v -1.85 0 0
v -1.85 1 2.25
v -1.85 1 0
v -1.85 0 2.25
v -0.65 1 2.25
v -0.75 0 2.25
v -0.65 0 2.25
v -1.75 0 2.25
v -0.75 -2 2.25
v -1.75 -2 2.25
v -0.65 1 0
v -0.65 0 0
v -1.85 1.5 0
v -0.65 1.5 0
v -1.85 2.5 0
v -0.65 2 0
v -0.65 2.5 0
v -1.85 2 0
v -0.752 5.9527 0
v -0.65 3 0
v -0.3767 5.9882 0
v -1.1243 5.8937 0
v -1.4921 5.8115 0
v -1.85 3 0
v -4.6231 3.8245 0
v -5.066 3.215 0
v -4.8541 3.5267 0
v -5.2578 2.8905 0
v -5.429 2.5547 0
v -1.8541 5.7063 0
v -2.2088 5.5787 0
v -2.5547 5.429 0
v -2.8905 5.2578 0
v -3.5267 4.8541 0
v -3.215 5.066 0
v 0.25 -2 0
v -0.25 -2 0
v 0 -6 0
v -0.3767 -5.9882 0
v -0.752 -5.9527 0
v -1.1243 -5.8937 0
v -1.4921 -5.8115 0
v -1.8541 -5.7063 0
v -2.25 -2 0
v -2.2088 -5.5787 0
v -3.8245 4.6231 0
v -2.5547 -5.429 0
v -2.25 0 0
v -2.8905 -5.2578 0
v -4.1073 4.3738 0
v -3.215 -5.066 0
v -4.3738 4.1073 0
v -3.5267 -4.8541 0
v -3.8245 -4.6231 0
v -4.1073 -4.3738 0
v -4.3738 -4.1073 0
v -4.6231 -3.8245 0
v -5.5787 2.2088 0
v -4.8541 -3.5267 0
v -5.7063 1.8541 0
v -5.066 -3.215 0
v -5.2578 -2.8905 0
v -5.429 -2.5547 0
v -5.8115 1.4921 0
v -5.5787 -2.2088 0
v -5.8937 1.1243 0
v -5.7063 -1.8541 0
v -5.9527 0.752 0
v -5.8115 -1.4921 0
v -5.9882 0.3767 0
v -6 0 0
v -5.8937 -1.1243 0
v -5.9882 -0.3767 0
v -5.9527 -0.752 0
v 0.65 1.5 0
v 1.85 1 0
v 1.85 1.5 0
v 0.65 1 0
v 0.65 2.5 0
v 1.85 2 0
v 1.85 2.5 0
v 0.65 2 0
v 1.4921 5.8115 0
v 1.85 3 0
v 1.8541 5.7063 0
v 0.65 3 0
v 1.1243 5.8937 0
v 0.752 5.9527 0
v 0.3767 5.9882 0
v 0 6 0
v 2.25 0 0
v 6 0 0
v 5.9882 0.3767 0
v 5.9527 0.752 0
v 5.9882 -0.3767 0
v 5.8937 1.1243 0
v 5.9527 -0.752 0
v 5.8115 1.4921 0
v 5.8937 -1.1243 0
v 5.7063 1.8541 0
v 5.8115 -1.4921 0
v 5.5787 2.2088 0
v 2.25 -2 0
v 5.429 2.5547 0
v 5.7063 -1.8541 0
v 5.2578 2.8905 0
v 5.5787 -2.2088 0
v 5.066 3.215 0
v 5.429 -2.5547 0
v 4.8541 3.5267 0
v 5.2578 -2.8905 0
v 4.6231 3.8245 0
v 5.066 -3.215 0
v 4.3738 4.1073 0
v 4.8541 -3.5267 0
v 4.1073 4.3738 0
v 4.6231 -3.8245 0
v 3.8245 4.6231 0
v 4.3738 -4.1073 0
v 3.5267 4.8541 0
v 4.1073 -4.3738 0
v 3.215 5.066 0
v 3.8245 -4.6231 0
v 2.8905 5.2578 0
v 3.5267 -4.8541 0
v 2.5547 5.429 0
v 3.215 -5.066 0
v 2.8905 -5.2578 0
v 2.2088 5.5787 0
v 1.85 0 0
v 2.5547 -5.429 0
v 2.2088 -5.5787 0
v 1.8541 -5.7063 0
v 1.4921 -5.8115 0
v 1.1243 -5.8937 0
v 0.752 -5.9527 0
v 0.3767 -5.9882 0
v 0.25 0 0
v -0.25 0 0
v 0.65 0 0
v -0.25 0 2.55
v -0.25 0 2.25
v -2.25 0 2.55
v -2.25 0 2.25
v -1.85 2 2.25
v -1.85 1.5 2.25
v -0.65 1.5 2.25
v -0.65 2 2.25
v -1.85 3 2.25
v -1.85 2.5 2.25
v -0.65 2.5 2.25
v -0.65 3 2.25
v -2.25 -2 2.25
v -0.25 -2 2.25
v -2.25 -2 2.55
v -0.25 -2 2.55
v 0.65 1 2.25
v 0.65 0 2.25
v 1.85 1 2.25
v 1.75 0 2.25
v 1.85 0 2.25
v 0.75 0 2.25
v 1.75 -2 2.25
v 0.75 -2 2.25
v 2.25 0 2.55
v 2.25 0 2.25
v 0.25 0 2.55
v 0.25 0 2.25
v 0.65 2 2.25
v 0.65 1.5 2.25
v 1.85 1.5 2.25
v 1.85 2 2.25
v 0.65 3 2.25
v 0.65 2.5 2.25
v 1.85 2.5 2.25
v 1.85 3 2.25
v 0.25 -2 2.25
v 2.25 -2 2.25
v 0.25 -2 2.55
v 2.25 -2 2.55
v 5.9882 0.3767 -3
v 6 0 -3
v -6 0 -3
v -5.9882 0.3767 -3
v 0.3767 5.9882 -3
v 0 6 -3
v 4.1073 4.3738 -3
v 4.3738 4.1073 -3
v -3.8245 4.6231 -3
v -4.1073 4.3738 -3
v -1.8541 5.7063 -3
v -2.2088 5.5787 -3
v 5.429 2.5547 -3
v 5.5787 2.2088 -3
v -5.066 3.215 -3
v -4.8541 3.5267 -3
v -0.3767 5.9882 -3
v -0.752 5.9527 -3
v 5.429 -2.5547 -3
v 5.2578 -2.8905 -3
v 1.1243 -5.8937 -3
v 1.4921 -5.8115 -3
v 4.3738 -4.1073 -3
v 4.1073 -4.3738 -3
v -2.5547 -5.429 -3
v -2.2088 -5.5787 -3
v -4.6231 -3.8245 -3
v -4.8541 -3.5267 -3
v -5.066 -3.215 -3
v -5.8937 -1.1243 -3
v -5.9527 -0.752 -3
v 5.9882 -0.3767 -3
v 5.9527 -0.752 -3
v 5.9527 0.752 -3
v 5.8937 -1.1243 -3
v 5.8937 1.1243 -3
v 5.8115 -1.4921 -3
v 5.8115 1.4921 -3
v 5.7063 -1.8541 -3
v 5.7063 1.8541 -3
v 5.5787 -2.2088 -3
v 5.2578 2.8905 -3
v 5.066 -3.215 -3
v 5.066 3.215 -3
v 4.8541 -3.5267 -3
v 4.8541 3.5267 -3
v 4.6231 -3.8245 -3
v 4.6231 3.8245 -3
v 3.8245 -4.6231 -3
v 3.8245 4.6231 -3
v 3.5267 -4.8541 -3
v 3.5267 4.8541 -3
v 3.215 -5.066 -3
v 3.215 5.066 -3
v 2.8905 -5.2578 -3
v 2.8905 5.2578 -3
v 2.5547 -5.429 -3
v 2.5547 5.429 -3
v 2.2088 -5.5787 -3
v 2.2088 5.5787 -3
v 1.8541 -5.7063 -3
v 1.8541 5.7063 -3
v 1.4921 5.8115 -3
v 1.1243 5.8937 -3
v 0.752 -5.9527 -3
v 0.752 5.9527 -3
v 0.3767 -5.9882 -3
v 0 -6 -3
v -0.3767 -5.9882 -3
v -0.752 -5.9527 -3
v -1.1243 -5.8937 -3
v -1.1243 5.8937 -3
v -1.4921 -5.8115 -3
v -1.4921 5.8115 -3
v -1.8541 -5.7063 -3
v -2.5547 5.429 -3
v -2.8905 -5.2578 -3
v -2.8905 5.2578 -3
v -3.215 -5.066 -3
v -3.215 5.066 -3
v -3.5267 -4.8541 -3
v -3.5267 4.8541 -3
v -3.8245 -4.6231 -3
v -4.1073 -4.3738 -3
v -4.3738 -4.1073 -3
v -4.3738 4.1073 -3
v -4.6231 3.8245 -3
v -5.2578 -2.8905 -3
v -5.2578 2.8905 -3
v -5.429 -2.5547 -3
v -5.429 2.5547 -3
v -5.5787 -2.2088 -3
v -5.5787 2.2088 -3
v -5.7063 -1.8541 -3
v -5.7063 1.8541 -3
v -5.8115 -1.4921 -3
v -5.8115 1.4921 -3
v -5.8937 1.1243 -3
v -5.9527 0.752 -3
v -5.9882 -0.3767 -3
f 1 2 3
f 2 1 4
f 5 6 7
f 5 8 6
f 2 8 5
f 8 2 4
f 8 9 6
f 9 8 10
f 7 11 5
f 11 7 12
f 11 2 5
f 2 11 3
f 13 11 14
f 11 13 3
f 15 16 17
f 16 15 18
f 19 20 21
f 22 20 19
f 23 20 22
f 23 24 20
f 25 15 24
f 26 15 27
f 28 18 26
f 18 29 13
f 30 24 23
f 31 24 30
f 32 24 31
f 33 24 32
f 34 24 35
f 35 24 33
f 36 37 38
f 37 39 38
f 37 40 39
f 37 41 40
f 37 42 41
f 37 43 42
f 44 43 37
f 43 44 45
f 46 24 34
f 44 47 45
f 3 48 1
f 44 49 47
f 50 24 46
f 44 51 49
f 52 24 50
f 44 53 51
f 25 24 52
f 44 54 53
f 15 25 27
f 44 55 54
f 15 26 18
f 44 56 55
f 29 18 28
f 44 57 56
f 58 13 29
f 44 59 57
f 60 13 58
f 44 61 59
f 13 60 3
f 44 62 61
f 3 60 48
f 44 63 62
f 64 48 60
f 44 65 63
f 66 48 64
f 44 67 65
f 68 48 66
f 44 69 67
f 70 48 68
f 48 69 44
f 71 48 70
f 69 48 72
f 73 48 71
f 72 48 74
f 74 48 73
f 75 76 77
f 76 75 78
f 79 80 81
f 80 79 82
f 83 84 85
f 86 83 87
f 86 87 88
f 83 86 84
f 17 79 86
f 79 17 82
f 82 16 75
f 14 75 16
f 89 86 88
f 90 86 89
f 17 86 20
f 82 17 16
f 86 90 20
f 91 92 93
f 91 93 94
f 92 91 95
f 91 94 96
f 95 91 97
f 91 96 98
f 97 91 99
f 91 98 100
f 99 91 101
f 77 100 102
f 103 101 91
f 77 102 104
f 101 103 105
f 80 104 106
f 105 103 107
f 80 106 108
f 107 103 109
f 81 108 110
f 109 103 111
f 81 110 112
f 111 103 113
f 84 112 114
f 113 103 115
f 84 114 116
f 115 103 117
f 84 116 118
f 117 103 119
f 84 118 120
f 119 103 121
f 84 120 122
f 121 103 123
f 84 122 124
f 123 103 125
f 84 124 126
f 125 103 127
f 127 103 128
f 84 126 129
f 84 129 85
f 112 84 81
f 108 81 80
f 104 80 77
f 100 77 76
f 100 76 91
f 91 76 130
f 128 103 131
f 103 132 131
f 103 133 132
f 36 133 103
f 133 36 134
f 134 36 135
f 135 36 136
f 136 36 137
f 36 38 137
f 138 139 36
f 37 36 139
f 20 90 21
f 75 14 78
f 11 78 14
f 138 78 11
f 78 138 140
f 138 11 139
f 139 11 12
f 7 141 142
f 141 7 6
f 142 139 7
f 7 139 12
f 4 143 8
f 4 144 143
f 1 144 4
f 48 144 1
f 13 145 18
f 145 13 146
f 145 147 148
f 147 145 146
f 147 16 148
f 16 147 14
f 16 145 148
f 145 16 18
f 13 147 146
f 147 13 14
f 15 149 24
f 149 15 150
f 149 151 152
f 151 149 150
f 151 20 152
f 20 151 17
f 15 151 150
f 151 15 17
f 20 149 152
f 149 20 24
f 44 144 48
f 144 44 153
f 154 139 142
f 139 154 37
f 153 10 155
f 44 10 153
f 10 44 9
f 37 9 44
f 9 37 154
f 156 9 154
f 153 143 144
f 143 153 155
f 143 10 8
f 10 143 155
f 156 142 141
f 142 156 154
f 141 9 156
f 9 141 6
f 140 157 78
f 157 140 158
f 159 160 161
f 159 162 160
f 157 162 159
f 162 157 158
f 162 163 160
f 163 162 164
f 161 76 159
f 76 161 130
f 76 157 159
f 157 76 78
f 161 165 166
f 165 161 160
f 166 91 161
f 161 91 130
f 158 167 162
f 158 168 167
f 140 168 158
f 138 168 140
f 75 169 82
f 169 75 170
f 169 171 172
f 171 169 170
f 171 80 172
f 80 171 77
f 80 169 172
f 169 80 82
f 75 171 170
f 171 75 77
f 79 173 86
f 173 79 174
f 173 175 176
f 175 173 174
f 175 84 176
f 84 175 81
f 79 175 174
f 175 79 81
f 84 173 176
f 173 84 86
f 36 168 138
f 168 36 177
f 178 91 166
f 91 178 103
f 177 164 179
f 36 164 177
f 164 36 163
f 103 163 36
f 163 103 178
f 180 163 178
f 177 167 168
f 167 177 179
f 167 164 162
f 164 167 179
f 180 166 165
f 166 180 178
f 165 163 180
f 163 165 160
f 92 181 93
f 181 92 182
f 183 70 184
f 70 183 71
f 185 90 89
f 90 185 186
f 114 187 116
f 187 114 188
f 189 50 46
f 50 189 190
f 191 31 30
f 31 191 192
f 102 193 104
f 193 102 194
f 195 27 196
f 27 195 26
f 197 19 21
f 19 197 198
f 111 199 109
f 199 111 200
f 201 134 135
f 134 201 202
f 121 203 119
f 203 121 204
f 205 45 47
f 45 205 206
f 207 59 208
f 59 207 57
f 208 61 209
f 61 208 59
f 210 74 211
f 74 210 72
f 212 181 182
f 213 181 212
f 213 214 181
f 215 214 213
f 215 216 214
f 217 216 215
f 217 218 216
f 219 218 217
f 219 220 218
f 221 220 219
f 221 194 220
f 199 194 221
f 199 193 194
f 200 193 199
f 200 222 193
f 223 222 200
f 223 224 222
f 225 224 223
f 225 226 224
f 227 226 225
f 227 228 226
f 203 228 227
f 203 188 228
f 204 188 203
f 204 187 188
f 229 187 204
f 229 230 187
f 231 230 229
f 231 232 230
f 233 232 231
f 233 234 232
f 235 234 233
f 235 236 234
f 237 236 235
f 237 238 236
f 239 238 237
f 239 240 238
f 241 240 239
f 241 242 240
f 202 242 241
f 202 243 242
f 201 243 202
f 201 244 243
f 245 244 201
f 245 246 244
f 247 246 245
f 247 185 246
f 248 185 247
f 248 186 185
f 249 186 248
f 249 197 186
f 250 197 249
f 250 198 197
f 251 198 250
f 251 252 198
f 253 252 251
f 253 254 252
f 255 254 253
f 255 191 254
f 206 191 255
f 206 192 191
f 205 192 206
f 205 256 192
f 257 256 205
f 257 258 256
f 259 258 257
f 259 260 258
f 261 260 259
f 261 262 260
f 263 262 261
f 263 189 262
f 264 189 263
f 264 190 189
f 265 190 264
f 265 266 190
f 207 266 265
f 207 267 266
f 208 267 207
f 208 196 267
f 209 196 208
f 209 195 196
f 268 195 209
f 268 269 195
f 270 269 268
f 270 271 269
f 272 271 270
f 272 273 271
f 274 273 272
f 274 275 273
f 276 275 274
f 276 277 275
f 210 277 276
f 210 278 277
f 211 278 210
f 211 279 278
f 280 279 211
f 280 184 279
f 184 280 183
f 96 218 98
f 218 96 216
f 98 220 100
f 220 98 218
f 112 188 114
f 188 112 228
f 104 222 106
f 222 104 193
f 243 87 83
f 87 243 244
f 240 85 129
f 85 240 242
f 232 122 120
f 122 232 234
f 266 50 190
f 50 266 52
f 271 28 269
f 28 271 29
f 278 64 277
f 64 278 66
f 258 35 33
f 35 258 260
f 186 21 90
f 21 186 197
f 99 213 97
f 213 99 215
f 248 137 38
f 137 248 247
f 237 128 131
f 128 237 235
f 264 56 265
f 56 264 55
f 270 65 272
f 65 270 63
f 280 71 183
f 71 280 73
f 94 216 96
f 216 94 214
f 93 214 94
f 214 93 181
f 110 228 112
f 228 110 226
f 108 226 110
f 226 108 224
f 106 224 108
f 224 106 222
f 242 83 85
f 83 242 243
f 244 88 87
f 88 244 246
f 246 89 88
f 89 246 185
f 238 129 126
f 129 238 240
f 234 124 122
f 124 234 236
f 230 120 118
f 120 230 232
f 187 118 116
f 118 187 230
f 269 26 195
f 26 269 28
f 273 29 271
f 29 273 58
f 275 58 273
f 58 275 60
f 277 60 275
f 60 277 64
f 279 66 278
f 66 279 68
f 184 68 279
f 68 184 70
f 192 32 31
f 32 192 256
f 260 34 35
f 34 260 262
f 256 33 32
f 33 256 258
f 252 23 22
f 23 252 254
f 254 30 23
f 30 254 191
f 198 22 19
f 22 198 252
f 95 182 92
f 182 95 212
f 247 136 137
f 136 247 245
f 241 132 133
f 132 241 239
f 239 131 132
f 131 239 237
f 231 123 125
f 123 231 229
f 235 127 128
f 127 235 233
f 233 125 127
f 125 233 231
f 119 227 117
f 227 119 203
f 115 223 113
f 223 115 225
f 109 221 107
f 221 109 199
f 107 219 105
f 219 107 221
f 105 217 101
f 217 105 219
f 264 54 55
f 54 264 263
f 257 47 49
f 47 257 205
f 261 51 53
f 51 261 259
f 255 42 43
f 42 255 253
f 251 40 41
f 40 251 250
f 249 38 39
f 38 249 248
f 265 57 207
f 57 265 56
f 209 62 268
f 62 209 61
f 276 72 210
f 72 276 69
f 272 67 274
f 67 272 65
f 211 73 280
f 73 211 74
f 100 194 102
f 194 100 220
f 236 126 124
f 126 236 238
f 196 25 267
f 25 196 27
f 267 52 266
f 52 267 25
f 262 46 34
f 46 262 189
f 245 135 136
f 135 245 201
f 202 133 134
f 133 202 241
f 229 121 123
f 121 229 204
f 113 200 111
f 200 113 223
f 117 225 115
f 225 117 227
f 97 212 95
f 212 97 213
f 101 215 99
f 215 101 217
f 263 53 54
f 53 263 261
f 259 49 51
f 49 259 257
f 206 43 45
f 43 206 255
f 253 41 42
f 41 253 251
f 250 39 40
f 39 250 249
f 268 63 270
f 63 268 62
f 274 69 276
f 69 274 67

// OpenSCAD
/*
NAME
	crimp.scad

DESCRIPTION
	This file generates a connector crimper. For 2 pin JST Connectors
	02HR-6S-P-N 2.5mm pitch/Disconnectable Insulation displacement
	connectors.
	http://www.jst-mfg.com/product/detail_e.php?series=115
	http://www.jst-mfg.com/product/pdf/eng/eHR2.pdf


AUTHOR
	Dan Kortschak <dan@ausocean.org>

LICENSE
	crimp.scad is Copyright (C) 2018 the Australian Ocean Lab (AusOcean)

	It is free software: you can redistribute it and/or modify them
	under the terms of the GNU General Public License as published by the
	Free Software Foundation, either version 3 of the License, or (at your
	option) any later version.

	It is distributed in the hope that it will be useful, but WITHOUT
	ANY WARRANTY; without even the implied warranty of MERCHANTABILITY or
	FITNESS FOR A PARTICULAR PURPOSE. See the GNU General Public License
	for more details.

	You should have received a copy of the GNU General Public License
	along with revid in gpl.txt. If not, see http://www.gnu.org/licenses.

*/

// Print with 100% infill and 0.05mm layer height.

$fn=100;

press();

module press() {
	translate([0, 0, -3]) cylinder(r=6, h=3);
	translate([-1.25, 0, 0]) press_pins();
	translate([1.25, 0, 0]) press_pins();
}

module press_pins() {
	w = 1.2;
	translate([-w/2, 0, 0]) { // Total of 3.5 long.
		cube([w, 1.0, 2.25]);
		translate([0, 1.5, 0,]) cube([w, 0.5, 2.25]);
		translate([0, 2.5, 0,]) cube([w, 0.5, 2.25]);
	}
	translate([-1.0, -2.0, 0])
		cube([2.0, 2.0, 2.25]);
	translate([-0.75, -1, 2.25])
		rotate(a=[0, 0, 90])
			prism(2.0, 0.5, 0.3);
	translate([0.75, -1, 2.25])
		rotate(a=[0, 0, -90])
			prism(2.0, 0.5, 0.3);
}

module prism(l, w, h){
	translate([-l/2, -w/2, 0])
		polyhedron(
			points=[[0,0,0], [l,0,0], [l,w,0], [0,w,0], [0,w,h], [l,w,h]],
			faces=[[0,1,2,3],[5,4,3,2],[0,4,5,1],[0,3,4],[5,2,1]]
		);
}
